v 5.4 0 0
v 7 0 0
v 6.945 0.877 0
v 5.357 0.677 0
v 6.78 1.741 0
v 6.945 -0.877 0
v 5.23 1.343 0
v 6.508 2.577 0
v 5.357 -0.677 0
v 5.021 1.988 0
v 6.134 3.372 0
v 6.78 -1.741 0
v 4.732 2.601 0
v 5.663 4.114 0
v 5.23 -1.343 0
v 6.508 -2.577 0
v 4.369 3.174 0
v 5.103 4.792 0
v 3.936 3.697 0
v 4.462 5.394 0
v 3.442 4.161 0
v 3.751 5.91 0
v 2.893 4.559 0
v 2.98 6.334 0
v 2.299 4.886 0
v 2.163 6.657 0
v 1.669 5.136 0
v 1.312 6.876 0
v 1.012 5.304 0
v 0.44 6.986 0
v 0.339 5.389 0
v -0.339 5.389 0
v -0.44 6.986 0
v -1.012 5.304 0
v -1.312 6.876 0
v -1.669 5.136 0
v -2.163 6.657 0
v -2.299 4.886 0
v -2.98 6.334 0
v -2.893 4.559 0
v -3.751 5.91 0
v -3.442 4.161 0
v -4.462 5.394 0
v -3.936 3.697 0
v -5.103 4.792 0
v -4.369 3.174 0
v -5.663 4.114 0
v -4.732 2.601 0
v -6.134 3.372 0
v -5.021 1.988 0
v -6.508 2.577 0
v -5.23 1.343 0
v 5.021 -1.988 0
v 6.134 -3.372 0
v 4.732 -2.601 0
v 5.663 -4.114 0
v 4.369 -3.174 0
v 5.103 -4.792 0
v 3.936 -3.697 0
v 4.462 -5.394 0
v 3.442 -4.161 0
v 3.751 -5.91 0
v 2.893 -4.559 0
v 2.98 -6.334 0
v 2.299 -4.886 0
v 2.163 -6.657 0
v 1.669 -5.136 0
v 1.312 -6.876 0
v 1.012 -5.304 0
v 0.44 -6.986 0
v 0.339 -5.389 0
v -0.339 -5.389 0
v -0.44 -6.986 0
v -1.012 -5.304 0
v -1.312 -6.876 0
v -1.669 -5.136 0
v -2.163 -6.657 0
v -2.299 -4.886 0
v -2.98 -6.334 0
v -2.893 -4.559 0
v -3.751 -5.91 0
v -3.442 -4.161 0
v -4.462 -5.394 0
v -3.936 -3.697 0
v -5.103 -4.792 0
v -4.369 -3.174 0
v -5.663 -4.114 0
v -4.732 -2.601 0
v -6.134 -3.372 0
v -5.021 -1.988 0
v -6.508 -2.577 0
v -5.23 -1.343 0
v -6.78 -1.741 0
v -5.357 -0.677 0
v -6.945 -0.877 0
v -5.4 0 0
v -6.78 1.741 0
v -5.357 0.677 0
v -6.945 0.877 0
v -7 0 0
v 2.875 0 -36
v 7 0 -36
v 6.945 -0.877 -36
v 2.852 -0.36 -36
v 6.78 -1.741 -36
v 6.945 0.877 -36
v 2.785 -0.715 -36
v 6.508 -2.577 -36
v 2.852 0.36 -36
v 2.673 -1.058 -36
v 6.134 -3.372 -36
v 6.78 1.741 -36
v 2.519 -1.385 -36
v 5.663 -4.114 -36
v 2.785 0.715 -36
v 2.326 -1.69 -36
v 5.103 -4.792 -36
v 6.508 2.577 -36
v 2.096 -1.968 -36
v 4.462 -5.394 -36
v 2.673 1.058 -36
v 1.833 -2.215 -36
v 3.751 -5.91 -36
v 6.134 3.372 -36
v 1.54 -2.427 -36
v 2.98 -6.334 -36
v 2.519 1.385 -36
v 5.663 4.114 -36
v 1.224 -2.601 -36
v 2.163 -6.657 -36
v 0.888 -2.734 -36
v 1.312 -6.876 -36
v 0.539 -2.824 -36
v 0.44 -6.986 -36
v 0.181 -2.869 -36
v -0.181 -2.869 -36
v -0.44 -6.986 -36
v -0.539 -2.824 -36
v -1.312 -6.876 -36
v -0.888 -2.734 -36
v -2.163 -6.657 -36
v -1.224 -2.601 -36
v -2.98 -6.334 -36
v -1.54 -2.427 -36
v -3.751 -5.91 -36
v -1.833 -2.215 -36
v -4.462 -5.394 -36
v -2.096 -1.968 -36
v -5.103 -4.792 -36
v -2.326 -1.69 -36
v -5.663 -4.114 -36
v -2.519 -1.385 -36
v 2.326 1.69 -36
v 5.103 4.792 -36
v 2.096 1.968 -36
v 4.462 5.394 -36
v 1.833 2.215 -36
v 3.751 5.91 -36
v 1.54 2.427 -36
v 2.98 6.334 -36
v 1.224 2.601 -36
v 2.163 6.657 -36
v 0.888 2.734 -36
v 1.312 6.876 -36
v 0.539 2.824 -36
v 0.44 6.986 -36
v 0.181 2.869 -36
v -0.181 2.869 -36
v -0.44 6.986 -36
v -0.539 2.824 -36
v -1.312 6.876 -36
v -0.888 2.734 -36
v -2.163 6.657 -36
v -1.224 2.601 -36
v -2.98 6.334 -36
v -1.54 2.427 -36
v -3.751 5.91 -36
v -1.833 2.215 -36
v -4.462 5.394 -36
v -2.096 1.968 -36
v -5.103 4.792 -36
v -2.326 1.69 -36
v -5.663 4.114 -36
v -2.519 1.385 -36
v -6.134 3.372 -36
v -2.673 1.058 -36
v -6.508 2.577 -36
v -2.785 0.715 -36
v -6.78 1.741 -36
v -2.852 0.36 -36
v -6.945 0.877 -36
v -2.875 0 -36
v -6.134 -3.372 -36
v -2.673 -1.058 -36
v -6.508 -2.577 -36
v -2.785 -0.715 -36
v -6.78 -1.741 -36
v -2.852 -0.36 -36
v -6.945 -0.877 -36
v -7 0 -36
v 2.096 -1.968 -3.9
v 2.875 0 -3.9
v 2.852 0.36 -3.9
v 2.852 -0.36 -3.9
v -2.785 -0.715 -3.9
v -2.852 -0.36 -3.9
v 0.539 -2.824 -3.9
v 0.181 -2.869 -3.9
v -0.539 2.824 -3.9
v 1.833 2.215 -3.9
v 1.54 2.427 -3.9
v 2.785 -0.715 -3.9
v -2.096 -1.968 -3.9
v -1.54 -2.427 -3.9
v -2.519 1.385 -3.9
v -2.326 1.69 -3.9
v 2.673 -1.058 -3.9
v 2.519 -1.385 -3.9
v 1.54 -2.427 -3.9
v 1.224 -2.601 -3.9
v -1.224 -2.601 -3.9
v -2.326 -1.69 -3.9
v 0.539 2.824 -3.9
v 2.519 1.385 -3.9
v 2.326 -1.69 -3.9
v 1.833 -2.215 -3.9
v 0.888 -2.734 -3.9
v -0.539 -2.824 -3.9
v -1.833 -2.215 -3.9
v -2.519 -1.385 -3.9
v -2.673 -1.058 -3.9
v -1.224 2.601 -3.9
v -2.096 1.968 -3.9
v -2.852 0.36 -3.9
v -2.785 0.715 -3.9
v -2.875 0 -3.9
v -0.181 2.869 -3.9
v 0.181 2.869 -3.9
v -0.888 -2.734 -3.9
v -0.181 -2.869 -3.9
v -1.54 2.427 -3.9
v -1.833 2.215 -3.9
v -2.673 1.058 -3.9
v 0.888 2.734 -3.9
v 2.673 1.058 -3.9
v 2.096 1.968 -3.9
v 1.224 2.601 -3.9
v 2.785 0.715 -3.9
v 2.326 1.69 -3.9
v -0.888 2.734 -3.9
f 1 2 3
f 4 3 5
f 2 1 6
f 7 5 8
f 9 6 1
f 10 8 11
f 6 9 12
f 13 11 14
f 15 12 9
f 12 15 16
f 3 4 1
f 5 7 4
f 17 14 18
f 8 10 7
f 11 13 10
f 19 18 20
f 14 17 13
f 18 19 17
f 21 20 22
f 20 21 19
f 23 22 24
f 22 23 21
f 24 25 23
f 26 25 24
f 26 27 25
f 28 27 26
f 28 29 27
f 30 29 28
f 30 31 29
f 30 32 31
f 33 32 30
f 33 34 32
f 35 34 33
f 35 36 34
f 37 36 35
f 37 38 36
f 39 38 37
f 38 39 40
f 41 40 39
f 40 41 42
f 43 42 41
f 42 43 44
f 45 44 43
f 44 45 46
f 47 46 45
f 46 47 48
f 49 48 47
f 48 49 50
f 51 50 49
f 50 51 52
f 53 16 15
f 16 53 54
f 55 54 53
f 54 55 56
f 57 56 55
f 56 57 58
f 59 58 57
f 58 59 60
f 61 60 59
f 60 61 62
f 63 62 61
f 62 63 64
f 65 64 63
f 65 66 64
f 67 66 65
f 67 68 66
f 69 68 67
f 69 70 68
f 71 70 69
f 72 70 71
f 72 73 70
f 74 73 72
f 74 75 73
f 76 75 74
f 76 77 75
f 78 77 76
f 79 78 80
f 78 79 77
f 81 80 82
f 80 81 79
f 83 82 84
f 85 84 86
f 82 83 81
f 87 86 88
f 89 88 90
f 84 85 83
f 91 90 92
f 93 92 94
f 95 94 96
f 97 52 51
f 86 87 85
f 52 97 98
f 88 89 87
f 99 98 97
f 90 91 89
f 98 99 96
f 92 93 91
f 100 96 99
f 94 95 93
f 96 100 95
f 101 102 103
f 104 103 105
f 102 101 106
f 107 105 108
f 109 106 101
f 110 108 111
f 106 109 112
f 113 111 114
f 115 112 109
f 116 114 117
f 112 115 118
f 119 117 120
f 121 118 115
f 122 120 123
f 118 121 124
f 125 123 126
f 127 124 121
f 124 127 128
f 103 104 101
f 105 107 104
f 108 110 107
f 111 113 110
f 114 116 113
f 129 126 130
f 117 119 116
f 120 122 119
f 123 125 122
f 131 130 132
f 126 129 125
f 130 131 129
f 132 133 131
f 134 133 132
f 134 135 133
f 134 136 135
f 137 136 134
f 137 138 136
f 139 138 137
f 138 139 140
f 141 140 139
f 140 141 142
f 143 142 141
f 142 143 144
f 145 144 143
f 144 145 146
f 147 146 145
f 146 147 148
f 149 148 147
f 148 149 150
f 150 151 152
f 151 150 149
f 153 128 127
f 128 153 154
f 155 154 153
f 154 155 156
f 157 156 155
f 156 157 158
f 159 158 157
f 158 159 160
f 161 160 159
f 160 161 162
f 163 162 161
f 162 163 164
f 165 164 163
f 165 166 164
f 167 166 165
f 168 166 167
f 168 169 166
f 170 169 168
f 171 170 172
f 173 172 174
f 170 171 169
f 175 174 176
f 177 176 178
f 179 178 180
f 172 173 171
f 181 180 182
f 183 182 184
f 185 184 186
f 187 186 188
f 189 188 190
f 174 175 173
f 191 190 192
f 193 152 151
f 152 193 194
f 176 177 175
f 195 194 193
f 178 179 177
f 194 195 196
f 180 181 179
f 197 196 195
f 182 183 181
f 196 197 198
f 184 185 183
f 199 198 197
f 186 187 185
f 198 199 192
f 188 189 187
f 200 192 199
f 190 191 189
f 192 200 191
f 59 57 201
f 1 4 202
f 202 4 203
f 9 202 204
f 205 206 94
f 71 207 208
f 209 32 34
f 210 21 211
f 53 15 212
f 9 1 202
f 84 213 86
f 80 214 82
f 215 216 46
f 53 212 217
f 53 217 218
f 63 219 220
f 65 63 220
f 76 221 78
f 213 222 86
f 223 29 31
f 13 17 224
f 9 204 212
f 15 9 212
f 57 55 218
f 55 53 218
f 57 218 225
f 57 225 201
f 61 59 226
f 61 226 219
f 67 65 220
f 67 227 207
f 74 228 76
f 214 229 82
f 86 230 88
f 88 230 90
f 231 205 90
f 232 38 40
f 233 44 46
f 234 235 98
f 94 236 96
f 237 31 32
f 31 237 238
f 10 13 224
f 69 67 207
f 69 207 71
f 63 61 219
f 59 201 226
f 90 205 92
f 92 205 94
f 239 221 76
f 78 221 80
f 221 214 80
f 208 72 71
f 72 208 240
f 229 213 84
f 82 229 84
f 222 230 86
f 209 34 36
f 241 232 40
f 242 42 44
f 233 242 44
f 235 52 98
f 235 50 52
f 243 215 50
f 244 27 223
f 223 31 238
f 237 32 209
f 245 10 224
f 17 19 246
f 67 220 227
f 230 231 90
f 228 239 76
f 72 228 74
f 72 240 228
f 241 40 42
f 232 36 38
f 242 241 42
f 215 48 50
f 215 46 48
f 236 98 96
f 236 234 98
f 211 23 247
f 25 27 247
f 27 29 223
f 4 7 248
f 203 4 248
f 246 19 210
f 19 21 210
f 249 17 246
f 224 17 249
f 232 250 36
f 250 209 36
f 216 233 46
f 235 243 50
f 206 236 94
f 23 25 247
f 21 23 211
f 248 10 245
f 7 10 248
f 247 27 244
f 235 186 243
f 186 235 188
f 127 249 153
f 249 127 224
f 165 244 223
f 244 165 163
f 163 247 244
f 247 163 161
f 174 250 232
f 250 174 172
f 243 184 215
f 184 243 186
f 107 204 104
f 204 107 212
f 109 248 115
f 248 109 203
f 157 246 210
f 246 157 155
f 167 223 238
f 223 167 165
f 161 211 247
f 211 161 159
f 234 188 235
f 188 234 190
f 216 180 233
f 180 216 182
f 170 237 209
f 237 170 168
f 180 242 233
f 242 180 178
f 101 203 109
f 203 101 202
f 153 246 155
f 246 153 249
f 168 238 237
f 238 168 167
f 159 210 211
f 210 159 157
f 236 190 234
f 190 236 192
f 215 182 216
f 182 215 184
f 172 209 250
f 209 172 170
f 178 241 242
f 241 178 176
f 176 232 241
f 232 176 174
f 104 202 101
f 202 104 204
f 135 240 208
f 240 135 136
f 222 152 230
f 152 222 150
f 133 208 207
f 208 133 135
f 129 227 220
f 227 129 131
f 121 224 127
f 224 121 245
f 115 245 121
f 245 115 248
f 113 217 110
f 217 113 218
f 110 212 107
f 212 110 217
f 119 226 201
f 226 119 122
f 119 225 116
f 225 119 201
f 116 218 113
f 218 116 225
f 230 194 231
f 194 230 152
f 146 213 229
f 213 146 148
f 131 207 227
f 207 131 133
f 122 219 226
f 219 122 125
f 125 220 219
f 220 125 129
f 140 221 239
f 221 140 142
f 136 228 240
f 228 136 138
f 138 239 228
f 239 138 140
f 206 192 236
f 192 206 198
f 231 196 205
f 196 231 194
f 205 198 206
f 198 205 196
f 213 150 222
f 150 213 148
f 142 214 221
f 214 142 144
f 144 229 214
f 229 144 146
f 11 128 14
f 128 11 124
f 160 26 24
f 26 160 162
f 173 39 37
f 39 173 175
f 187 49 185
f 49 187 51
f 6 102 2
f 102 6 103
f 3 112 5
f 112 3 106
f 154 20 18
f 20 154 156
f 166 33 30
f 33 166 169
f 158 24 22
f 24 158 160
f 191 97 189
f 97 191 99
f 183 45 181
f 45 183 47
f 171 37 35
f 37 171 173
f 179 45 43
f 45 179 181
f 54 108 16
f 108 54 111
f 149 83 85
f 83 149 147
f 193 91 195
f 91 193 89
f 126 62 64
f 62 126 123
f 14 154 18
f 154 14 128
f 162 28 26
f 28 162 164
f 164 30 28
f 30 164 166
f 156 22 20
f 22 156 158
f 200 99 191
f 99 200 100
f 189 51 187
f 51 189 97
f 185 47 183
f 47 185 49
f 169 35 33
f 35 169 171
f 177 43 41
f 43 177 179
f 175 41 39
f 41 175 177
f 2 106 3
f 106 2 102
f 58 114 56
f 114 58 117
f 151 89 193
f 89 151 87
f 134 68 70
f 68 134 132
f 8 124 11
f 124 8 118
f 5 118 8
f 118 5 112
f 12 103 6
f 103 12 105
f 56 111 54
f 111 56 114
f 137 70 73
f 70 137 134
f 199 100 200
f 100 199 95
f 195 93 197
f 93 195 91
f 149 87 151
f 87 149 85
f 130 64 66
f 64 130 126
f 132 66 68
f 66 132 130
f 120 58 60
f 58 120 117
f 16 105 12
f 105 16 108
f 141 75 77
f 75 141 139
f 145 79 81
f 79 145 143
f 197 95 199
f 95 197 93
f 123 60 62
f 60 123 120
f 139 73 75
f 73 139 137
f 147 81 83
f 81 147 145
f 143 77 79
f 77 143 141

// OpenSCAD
$fn = 50;


difference() {
	union() {
		translate(v = [0, 0, -36.0000000000]) {
			cylinder(h = 36, r = 7.0000000000);
		}
		cylinder(h = 0, r = 10.0000000000);
	}
	union() {
		translate(v = [0, 0, 0]) {
			rotate(a = [0, 0, 0]) {
				difference() {
					union() {
						#translate(v = [0, 0, -36.0000000000]) {
							cylinder(h = 36, r = 2.6000000000);
						}
						#translate(v = [0, 0, -3.9000000000]) {
							cylinder(h = 3.9000000000, r1 = 2.8750000000, r2 = 5.4000000000);
						}
						#translate(v = [0, 0, -36.0000000000]) {
							cylinder(h = 36, r = 2.8750000000);
						}
						#translate(v = [0, 0, -36.0000000000]) {
							cylinder(h = 36, r = 2.6000000000);
						}
					}
					union();
				}
			}
		}
	}
}
